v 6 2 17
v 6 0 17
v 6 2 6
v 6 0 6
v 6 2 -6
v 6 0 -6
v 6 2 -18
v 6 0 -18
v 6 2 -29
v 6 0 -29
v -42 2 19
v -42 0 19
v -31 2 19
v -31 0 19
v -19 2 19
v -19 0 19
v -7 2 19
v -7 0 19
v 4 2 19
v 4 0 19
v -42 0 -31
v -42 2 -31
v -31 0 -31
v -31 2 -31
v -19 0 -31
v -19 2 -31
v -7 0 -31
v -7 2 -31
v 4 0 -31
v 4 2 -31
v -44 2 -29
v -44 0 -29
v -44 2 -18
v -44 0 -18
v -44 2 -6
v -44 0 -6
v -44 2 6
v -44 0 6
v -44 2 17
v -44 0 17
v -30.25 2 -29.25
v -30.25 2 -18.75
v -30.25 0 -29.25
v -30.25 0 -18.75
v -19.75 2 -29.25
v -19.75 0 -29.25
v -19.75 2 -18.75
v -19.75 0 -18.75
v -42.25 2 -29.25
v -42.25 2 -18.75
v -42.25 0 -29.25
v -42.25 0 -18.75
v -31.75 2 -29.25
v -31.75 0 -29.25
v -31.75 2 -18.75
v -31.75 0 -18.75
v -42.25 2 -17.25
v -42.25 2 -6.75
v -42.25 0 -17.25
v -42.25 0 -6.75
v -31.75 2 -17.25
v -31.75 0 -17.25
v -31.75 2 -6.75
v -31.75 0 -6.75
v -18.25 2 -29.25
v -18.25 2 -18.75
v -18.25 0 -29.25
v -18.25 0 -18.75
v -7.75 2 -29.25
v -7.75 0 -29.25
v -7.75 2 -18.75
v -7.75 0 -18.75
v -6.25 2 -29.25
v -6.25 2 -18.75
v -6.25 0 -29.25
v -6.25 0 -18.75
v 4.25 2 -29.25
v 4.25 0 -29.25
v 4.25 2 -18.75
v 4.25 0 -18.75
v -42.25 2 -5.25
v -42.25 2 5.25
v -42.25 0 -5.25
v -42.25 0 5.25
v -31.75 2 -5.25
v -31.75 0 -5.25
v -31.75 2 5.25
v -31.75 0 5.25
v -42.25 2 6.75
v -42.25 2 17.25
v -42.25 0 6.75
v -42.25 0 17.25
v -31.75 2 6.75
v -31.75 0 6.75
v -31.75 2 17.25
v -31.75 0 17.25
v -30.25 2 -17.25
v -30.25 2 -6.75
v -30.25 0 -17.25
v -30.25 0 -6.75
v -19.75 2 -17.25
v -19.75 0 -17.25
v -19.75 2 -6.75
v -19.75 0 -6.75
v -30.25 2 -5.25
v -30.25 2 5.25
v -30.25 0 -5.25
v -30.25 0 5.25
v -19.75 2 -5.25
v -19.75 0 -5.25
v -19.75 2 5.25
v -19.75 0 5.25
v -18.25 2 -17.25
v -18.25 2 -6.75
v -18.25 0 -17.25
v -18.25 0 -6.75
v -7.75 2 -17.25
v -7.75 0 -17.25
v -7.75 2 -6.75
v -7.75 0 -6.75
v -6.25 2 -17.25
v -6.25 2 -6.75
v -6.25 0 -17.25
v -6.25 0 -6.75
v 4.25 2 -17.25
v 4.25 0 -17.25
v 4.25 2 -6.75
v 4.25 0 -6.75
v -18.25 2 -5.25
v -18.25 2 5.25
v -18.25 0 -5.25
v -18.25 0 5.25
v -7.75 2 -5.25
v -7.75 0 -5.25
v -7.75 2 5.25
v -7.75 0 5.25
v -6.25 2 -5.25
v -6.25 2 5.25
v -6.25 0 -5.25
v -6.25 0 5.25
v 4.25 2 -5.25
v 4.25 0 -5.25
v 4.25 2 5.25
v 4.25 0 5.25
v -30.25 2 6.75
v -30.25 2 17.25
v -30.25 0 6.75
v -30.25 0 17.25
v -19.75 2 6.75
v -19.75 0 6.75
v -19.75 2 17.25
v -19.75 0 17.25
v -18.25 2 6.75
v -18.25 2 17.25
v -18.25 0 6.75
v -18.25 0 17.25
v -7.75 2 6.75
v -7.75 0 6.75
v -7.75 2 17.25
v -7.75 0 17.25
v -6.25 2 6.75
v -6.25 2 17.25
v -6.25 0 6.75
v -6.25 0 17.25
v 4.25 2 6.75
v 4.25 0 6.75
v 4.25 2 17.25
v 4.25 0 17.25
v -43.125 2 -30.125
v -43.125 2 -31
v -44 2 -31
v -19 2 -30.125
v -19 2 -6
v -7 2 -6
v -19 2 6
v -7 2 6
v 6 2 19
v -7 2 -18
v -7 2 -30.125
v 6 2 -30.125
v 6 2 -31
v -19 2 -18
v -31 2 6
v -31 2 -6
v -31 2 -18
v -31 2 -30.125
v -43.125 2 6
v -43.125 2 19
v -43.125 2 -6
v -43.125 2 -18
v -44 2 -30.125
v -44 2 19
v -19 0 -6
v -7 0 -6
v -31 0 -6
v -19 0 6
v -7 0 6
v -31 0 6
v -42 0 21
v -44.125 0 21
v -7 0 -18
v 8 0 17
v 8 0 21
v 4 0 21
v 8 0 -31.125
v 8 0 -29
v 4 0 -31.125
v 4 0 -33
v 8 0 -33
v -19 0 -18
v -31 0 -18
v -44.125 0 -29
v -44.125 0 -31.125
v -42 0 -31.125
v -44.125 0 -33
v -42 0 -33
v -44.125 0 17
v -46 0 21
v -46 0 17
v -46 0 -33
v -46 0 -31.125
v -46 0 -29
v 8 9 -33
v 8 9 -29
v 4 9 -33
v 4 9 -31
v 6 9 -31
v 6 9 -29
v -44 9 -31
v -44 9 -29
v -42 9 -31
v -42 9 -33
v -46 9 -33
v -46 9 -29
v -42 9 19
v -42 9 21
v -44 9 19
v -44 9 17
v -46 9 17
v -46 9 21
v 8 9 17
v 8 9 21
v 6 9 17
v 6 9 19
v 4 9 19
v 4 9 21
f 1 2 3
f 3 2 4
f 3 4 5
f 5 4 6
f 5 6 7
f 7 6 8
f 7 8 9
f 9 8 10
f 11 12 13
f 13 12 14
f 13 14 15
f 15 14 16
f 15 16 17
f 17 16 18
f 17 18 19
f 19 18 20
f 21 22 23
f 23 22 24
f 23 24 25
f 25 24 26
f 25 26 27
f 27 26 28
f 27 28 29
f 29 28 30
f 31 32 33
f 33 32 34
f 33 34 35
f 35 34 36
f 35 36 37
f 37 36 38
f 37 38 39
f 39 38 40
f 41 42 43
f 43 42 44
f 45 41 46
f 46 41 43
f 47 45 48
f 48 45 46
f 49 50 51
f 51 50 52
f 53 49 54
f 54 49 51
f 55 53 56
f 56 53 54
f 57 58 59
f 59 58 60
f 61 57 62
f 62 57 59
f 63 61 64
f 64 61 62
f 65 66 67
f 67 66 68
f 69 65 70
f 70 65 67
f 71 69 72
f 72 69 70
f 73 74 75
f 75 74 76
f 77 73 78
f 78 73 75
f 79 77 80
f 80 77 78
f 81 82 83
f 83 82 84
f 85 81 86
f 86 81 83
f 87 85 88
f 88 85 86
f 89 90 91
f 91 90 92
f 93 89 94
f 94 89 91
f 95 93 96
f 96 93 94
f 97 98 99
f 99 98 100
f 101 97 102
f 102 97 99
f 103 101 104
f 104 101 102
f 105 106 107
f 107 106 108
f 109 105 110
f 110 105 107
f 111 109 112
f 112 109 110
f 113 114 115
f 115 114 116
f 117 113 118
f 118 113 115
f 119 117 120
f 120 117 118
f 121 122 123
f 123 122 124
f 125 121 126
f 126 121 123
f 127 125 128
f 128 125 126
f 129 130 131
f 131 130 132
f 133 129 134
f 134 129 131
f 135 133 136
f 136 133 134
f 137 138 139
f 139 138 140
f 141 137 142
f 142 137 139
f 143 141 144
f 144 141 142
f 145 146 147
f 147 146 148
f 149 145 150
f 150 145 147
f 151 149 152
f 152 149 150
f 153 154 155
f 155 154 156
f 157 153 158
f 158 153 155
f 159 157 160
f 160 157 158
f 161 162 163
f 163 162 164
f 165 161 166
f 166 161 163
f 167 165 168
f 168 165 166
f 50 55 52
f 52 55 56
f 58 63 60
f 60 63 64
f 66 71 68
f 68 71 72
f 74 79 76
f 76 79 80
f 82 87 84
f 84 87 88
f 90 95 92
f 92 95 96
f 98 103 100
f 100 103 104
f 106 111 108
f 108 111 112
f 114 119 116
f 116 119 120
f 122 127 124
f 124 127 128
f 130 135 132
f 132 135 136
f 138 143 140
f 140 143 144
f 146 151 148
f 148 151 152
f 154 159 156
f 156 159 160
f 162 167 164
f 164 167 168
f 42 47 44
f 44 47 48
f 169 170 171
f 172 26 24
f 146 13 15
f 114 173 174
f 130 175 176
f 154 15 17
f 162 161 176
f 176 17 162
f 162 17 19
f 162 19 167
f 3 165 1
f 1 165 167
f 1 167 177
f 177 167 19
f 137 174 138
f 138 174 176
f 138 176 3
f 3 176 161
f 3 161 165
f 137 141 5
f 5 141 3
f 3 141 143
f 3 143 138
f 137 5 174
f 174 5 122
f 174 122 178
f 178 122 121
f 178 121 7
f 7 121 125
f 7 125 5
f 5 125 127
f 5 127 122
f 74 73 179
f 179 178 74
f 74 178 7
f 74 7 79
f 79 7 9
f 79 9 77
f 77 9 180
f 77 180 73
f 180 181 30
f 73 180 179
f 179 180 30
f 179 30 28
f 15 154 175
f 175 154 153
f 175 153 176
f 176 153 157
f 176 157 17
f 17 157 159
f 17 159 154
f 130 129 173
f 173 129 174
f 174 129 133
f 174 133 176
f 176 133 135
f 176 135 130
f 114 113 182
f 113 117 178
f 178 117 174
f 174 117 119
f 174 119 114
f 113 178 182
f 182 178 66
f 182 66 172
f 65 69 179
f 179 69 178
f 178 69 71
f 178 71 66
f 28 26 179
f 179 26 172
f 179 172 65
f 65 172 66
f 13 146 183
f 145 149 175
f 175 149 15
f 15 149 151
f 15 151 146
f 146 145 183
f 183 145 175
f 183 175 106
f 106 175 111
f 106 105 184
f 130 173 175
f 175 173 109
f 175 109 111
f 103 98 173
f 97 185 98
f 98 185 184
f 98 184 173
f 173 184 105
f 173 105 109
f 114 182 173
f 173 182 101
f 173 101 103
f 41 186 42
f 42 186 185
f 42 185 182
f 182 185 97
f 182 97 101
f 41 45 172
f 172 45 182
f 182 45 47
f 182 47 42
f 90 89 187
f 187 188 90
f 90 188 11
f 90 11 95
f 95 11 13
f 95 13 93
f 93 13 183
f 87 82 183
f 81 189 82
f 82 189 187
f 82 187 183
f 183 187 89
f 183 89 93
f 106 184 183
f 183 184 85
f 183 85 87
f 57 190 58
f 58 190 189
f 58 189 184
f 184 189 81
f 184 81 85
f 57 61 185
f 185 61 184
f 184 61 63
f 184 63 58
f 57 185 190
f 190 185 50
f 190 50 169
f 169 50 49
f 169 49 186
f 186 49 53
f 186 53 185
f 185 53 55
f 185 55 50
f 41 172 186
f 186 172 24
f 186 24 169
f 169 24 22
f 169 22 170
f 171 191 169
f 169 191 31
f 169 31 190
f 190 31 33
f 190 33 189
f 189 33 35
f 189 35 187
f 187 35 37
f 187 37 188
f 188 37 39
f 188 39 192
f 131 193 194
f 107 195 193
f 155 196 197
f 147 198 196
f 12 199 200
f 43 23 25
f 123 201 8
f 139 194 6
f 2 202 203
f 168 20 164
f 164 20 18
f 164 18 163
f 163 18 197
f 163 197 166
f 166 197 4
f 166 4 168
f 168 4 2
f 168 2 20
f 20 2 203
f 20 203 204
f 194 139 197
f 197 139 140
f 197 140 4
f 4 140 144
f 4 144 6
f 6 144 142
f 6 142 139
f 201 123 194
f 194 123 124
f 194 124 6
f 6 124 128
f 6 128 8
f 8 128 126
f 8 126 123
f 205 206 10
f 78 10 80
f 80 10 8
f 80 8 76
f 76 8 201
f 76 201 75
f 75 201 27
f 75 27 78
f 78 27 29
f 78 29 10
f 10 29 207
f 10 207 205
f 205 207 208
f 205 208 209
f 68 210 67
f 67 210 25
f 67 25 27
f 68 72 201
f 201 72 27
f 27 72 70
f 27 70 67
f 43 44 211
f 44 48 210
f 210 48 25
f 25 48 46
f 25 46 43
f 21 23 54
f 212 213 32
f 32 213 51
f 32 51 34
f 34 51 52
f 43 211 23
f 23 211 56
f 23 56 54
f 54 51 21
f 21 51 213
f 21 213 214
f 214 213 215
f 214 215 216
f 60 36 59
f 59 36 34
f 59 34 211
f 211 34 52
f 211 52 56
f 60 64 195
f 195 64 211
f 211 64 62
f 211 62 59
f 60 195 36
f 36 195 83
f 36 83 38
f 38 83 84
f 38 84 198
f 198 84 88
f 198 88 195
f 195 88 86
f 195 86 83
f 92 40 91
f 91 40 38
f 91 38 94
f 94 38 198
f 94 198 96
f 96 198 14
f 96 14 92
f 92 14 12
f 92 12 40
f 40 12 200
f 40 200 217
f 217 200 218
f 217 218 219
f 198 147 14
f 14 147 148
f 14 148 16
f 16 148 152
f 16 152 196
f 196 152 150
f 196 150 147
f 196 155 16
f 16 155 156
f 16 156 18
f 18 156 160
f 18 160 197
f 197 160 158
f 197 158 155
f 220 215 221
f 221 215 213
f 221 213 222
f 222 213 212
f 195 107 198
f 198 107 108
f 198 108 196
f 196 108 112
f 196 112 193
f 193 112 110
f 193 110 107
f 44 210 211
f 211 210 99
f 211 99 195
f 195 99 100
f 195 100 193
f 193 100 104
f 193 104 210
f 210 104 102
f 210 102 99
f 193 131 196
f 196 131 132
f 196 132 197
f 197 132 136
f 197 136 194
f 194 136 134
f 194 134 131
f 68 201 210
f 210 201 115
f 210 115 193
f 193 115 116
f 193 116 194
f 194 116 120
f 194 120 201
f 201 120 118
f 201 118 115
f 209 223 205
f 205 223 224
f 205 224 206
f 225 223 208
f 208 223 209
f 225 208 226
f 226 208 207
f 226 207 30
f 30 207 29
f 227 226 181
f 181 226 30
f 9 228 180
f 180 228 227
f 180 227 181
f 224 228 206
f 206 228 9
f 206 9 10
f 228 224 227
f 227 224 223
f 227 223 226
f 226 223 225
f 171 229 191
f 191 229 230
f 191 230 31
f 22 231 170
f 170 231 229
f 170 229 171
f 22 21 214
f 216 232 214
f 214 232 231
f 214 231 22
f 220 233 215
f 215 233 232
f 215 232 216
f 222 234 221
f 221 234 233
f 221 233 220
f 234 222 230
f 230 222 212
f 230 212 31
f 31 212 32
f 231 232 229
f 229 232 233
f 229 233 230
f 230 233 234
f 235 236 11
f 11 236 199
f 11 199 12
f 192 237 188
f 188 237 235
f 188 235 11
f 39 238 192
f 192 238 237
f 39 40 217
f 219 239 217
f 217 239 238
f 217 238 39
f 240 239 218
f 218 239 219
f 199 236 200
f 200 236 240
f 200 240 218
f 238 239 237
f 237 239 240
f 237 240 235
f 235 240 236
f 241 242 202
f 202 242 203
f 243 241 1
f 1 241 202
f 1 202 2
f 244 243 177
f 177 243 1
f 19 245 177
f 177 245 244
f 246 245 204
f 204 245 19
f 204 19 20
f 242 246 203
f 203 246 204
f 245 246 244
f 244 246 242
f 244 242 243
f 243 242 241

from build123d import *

# Parameters (mm, degrees)
SKETCH1_W           = 10.5
SKETCH1_H           = 10.5
BOSS_EXTRUDE1_DEPTH = 2
BOSS_EXTRUDE2_DEPTH = 9


with BuildPart() as part:
    # Sketch1 → Boss-Extrude1 (new body)
    with BuildSketch(Plane(origin=(0, 0, 0), x_dir=(1, 0, 0), z_dir=(0, 1, 0))):
        Polygon((4, 31), (-42, 31), (-44, 31), (-44, 29), (-44, -17), (-44, -19), (-42, -19), (4, -19), (6, -19), (6, -17), (6, 29), (6, 31), align=None)
        with Locations((-37, -12)):
            Rectangle(SKETCH1_W, SKETCH1_H, mode=Mode.SUBTRACT)
        with Locations((-25, -12)):
            Rectangle(SKETCH1_W, SKETCH1_H, mode=Mode.SUBTRACT)
        with Locations((-37, 0)):
            Rectangle(SKETCH1_W, SKETCH1_H, mode=Mode.SUBTRACT)
        with Locations((-25, 0)):
            Rectangle(SKETCH1_W, SKETCH1_H, mode=Mode.SUBTRACT)
        with Locations((-13, -12)):
            Rectangle(SKETCH1_W, SKETCH1_H, mode=Mode.SUBTRACT)
        with Locations((-1, -12)):
            Rectangle(SKETCH1_W, SKETCH1_H, mode=Mode.SUBTRACT)
        with Locations((-13, 0)):
            Rectangle(SKETCH1_W, SKETCH1_H, mode=Mode.SUBTRACT)
        with Locations((-1, 0)):
            Rectangle(SKETCH1_W, SKETCH1_H, mode=Mode.SUBTRACT)
        with Locations((-37, 12)):
            Rectangle(SKETCH1_W, SKETCH1_H, mode=Mode.SUBTRACT)
        with Locations((-25, 12)):
            Rectangle(SKETCH1_W, SKETCH1_H, mode=Mode.SUBTRACT)
        with Locations((-37, 24)):
            Rectangle(SKETCH1_W, SKETCH1_H, mode=Mode.SUBTRACT)
        with Locations((-25, 24)):
            Rectangle(SKETCH1_W, SKETCH1_H, mode=Mode.SUBTRACT)
        with Locations((-13, 12)):
            Rectangle(SKETCH1_W, SKETCH1_H, mode=Mode.SUBTRACT)
        with Locations((-1, 12)):
            Rectangle(SKETCH1_W, SKETCH1_H, mode=Mode.SUBTRACT)
        with Locations((-13, 24)):
            Rectangle(SKETCH1_W, SKETCH1_H, mode=Mode.SUBTRACT)
        with Locations((-1, 24)):
            Rectangle(SKETCH1_W, SKETCH1_H, mode=Mode.SUBTRACT)
    extrude(amount=BOSS_EXTRUDE1_DEPTH)

    # Sketch1<32> → Boss-Extrude2 (add)
    with BuildSketch(Plane(origin=(0, 0, 0), x_dir=(1, 0, 0), z_dir=(0, 1, 0))):
        Polygon((-44, 31), (-42, 31), (-42, 33), (-46, 33), (-46, 29), (-44, 29), align=None)
        Polygon((4, 33), (4, 31), (6, 31), (6, 29), (8, 29), (8, 33), align=None)
        Polygon((-44, -19), (-44, -17), (-46, -17), (-46, -21), (-42, -21), (-42, -19), align=None)
        Polygon((8, -17), (6, -17), (6, -19), (4, -19), (4, -21), (8, -21), align=None)
    extrude(amount=BOSS_EXTRUDE2_DEPTH)


solid = part.part
